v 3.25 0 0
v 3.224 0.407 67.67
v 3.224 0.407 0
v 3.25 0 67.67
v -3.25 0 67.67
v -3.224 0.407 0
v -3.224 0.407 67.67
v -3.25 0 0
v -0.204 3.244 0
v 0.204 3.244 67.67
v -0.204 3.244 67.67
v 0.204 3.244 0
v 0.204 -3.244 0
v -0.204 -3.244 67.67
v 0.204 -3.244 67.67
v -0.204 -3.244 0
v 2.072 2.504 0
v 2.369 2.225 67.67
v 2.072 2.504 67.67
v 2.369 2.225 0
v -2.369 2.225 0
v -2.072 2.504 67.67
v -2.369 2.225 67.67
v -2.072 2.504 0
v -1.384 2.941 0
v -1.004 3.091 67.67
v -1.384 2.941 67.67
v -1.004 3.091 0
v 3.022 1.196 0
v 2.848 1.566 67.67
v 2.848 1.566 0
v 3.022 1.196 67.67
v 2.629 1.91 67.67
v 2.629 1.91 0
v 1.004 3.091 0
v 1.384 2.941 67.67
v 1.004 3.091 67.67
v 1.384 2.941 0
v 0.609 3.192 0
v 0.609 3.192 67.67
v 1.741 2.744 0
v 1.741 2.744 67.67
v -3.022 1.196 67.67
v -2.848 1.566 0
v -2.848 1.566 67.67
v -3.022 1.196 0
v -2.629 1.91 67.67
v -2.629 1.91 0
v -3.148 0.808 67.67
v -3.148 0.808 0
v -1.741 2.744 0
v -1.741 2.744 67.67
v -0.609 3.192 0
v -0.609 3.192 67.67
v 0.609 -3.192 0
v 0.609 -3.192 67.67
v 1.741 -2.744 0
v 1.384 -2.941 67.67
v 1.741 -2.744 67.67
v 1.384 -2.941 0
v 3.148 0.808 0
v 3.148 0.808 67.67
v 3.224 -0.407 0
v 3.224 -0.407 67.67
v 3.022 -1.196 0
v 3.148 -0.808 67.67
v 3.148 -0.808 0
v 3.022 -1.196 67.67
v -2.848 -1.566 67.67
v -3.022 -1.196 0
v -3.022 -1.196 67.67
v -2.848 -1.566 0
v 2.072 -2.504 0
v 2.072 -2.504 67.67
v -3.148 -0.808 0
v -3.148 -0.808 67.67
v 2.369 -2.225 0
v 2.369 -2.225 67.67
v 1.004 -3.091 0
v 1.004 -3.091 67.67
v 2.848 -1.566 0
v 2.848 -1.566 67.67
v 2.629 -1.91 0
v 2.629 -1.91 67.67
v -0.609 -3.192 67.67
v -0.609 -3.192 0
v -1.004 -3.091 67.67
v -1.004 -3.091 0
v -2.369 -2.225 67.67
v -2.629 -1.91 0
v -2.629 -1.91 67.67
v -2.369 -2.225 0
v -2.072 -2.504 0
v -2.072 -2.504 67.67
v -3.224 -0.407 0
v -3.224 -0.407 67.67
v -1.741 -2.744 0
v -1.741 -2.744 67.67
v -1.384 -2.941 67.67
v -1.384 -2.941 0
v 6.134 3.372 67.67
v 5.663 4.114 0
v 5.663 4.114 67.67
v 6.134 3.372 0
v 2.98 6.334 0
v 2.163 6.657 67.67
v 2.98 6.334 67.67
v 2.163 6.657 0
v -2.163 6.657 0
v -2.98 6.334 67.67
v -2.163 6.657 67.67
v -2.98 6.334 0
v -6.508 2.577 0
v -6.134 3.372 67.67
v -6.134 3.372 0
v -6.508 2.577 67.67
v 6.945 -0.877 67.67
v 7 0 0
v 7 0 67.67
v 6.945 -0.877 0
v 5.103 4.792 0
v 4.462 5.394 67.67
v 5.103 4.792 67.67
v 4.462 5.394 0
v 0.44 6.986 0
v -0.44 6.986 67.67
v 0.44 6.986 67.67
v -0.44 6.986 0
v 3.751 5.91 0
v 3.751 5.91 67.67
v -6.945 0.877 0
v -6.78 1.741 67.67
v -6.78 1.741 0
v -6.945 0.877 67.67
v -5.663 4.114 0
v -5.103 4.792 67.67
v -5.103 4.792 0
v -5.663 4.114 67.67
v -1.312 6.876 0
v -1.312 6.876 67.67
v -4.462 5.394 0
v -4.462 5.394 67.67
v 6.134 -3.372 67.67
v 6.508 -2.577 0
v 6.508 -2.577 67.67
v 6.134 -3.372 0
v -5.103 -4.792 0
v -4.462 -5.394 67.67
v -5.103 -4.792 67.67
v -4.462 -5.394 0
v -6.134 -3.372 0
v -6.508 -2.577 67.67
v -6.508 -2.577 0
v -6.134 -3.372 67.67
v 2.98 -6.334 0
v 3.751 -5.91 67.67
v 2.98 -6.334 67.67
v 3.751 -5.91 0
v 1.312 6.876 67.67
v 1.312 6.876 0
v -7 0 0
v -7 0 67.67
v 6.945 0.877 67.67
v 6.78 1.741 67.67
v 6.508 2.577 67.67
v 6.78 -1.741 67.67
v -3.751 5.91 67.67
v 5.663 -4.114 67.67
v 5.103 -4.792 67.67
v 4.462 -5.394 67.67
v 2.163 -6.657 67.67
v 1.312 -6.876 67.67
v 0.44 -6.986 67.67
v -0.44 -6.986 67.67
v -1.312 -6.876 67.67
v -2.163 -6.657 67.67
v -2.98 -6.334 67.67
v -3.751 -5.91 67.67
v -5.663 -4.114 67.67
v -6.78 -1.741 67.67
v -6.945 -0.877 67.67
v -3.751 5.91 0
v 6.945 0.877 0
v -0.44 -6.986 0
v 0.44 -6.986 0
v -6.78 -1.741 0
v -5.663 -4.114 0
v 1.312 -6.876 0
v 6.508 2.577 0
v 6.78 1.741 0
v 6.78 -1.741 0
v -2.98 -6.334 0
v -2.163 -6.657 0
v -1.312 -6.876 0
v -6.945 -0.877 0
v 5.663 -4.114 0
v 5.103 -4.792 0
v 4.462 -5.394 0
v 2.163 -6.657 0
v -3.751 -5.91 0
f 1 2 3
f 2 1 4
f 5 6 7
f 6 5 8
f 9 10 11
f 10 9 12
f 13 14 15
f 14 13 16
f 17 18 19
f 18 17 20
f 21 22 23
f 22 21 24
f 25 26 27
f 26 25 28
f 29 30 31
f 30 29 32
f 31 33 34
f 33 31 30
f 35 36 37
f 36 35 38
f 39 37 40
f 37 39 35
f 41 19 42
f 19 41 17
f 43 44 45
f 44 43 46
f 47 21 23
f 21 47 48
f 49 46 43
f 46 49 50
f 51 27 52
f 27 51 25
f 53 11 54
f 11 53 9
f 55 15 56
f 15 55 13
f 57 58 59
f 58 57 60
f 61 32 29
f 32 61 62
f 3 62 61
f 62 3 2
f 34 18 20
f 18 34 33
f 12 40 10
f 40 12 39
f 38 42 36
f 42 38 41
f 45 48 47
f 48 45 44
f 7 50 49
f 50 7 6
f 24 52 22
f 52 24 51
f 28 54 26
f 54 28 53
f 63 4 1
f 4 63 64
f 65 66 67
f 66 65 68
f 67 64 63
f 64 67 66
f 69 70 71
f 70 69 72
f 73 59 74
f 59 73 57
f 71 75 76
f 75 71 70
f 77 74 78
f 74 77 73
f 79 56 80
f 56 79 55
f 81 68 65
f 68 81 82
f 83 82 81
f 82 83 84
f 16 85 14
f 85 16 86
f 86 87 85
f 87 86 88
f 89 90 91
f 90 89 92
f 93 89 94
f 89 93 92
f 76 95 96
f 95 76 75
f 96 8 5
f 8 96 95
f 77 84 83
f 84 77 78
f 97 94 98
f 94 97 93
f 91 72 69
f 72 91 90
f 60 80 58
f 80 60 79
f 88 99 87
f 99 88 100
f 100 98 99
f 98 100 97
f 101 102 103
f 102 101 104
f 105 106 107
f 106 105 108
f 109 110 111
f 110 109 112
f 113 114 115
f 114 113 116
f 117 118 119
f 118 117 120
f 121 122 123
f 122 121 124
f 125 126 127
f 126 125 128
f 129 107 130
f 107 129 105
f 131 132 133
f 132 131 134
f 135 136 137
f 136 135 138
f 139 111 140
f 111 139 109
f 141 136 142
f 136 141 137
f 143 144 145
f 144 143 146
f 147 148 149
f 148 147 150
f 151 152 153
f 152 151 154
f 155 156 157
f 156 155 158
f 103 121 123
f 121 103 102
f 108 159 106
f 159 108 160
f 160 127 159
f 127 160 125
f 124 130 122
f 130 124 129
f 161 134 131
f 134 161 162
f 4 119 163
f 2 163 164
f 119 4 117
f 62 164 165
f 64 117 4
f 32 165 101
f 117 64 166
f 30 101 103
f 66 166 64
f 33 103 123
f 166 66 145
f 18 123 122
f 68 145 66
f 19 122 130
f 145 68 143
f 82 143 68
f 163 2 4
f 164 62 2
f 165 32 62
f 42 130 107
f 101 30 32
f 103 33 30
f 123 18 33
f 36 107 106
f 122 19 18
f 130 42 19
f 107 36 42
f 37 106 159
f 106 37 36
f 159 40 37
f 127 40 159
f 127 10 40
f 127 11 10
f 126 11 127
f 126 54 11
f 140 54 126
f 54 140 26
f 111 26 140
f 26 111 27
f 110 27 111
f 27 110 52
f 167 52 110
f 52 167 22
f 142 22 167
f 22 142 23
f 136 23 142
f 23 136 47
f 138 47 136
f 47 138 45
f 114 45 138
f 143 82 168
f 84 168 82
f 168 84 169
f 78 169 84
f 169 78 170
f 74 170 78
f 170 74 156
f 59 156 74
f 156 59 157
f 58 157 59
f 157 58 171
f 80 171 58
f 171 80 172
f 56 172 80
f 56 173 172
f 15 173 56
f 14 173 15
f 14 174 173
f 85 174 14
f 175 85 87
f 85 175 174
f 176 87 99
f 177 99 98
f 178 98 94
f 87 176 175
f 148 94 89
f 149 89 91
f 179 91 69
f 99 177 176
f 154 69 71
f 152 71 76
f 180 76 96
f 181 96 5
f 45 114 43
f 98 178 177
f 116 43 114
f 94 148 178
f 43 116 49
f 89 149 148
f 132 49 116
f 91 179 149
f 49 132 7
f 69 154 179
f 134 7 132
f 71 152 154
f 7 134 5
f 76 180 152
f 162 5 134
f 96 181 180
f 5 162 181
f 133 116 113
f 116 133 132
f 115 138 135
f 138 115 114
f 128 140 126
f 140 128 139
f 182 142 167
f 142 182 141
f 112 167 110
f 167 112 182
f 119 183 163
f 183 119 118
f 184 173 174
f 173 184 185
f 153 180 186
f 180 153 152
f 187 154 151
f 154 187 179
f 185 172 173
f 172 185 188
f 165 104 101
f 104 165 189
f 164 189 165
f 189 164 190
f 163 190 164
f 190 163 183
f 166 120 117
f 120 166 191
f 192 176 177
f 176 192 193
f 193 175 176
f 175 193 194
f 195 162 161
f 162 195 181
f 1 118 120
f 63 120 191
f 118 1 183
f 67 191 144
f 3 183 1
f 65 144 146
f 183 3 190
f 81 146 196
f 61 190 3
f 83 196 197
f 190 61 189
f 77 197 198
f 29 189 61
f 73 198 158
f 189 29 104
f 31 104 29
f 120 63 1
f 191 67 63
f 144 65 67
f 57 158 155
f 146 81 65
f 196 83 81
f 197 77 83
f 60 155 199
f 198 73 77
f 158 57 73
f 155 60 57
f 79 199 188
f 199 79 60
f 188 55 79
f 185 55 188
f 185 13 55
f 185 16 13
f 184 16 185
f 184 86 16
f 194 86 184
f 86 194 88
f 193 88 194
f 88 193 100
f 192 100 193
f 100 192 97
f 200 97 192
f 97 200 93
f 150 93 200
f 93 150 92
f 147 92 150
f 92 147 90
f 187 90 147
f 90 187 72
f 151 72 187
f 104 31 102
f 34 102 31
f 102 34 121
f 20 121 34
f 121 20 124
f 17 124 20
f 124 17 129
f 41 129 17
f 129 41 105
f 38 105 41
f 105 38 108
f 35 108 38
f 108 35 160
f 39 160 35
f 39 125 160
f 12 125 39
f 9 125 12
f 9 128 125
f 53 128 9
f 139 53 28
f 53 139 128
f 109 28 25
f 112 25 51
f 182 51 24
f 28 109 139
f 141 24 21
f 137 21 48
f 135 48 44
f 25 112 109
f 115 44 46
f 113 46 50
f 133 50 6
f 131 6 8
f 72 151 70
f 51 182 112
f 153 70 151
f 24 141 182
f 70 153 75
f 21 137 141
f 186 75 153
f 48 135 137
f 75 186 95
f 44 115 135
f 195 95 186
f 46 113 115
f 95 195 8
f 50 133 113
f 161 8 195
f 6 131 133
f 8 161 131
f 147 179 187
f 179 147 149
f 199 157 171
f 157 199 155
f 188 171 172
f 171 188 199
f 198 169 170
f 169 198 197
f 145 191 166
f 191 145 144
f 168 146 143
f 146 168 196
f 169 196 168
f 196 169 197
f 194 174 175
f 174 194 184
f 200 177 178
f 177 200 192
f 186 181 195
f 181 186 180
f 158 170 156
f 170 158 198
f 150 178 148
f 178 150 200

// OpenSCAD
$fn = 50;


difference() {
	union() {
		cylinder(h = 67.6700000000, r = 7.0000000000);
	}
	union() {
		translate(v = [0, 0, -100]) {
			cylinder(h = 200, r = 3.2500000000);
		}
		translate(v = [0, 0, -100]) {
			cylinder(h = 200, r = 1.8000000000);
		}
	}
}
